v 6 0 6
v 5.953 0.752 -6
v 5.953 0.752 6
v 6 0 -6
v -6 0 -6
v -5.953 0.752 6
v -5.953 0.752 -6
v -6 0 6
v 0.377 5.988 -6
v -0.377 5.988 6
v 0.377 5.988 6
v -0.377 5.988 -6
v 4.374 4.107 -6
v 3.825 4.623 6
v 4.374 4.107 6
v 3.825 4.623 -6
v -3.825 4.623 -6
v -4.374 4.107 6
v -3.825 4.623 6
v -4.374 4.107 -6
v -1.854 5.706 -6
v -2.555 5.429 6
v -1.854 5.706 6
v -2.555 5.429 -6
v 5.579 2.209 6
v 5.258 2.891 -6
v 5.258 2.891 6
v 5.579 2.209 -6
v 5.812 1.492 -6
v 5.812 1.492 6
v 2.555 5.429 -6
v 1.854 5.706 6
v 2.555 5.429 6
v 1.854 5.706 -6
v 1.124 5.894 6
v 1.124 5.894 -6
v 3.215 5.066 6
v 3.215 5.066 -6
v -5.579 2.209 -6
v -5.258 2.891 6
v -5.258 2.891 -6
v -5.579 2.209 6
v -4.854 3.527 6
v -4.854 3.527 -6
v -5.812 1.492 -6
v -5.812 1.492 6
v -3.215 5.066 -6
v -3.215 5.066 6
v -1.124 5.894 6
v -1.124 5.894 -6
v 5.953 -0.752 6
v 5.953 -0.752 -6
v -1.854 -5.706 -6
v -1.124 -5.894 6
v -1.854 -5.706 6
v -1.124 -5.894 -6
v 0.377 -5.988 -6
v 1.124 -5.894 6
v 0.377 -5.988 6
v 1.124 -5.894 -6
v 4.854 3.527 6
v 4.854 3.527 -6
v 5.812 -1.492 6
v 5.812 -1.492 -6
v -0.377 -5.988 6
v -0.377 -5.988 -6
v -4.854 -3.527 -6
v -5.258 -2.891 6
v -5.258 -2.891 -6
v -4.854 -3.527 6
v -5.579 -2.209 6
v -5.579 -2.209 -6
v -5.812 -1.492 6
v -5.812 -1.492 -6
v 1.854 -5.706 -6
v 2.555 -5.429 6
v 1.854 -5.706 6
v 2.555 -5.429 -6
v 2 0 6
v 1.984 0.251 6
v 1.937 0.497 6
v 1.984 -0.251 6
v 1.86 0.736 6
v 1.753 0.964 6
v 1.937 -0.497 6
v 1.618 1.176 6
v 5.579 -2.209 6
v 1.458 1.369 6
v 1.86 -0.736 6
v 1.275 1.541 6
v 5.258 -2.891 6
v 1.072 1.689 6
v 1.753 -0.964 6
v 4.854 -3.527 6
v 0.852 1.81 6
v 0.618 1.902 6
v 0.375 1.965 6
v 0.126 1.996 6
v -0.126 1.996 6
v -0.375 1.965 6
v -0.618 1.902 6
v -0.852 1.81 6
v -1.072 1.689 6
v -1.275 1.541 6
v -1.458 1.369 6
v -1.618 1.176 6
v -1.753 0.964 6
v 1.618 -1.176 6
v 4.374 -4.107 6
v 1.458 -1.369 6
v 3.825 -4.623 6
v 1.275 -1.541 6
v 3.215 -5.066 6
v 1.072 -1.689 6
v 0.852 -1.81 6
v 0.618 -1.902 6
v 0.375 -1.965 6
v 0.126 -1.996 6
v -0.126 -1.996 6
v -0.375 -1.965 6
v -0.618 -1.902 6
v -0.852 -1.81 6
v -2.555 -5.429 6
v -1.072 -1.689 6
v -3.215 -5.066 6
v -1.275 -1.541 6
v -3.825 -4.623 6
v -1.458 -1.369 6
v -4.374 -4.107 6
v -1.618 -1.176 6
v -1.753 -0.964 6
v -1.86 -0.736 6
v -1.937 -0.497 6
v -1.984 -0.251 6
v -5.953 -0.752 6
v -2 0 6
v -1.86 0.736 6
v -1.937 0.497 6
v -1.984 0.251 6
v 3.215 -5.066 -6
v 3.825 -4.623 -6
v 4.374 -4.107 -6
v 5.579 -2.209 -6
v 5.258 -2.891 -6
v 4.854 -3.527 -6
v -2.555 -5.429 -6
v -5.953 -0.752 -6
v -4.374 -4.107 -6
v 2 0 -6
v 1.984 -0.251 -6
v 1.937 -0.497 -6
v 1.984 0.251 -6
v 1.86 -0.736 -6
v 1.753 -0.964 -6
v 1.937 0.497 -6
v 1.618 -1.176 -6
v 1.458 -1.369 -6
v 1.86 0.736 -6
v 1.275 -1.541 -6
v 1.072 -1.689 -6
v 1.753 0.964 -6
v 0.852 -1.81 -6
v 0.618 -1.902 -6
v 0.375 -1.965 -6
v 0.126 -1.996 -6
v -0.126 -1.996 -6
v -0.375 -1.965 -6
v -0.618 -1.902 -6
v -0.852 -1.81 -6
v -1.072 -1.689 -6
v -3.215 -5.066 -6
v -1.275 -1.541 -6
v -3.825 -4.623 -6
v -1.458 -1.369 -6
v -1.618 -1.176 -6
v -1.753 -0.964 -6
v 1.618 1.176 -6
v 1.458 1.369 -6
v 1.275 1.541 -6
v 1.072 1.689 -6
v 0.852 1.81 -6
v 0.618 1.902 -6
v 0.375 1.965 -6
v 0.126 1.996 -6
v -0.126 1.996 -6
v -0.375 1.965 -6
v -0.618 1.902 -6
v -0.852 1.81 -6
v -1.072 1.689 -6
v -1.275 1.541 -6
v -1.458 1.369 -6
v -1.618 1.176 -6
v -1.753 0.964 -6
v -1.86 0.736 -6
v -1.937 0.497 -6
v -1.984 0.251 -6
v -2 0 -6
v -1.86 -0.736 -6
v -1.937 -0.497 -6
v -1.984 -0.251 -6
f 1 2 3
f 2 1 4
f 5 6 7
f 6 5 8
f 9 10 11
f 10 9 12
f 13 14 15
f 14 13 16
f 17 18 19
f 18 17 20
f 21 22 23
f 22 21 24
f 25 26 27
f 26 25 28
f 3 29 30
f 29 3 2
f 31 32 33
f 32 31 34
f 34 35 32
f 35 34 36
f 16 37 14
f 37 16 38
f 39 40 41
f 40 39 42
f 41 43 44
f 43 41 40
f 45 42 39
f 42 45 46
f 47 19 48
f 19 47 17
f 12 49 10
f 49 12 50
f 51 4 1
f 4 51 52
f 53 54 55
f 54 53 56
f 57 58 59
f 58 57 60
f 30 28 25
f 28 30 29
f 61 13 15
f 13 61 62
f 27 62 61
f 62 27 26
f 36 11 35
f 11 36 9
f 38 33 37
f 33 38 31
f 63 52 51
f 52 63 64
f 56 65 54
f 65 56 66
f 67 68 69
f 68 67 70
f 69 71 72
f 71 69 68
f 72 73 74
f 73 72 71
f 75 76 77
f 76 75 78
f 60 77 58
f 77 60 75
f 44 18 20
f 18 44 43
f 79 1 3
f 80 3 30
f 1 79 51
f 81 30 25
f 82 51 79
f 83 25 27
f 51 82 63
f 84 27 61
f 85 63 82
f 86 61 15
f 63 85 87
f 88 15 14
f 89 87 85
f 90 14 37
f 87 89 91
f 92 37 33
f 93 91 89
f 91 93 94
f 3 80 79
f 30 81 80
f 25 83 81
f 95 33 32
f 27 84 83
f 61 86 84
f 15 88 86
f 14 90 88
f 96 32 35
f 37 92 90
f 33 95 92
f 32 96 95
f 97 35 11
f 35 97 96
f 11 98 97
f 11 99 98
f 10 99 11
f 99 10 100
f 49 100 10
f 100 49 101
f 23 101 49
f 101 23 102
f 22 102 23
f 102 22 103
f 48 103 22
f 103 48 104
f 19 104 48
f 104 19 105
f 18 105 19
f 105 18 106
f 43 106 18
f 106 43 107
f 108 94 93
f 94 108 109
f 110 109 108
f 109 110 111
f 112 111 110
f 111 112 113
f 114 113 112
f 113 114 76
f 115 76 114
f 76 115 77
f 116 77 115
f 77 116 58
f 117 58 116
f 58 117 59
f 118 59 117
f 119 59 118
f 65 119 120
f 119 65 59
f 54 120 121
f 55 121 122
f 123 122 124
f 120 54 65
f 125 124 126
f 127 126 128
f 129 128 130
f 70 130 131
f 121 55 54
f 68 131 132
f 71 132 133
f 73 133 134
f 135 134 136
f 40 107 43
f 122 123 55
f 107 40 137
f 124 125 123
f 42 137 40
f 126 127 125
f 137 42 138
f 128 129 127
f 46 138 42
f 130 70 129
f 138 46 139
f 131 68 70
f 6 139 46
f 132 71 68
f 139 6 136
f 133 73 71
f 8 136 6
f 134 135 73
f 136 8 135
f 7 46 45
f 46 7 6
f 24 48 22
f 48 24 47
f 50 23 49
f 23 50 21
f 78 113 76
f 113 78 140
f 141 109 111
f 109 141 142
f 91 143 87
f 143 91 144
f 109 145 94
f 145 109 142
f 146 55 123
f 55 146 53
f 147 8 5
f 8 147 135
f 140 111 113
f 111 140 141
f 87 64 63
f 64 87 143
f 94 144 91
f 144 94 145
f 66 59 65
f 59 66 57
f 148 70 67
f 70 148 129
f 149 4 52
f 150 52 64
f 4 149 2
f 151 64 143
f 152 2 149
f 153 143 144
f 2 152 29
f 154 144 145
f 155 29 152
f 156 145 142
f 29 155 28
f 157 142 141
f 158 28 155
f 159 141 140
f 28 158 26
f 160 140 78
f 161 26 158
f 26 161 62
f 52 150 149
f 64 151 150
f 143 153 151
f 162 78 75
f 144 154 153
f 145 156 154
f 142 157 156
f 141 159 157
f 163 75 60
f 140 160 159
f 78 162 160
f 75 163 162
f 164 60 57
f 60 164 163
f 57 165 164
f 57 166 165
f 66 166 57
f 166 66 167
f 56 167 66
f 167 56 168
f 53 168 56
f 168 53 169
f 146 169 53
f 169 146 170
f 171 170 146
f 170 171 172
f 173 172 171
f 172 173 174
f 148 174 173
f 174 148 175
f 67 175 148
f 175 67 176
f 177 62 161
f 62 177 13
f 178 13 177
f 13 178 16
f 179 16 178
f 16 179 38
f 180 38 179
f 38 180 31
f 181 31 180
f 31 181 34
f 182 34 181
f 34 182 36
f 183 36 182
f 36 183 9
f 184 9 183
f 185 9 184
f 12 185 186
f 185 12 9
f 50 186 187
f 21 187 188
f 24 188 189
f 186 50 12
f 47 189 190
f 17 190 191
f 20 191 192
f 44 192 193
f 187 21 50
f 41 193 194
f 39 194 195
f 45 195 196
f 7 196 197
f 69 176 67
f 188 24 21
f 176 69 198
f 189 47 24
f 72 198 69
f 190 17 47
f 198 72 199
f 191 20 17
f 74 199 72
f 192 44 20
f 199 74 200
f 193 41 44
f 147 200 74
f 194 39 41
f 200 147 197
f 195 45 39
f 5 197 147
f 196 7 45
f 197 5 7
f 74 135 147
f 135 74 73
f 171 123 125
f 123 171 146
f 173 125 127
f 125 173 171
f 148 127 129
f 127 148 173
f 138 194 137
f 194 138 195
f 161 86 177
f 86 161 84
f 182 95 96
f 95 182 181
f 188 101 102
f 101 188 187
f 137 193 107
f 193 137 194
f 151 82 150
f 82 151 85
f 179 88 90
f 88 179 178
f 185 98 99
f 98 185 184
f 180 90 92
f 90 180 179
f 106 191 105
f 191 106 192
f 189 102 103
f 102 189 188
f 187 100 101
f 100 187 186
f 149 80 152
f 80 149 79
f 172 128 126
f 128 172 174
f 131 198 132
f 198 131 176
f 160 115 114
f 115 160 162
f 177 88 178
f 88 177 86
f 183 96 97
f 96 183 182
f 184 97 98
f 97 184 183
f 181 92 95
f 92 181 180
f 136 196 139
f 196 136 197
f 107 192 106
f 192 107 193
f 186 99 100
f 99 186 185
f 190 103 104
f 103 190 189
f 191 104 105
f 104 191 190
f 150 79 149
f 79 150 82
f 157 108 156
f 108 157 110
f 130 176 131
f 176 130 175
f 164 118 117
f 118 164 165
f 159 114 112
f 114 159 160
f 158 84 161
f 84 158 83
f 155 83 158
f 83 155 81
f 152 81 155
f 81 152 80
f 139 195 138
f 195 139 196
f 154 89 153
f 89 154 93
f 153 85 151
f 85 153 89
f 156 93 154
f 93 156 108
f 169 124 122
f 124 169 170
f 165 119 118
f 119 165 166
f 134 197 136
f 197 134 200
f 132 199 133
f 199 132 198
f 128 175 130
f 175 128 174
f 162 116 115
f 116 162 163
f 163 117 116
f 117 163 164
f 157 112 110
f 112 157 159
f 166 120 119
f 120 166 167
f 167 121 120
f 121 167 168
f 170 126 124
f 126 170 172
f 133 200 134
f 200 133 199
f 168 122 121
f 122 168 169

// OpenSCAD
$fn = 50;


difference() {
	union() {
		translate(v = [0, 0, -6.0000000000]) {
			cylinder(h = 12, r = 6.0000000000);
		}
	}
	union() {
		translate(v = [0, 0, -100.0000000000]) {
			cylinder(h = 200, r = 2.0000000000);
		}
	}
}
